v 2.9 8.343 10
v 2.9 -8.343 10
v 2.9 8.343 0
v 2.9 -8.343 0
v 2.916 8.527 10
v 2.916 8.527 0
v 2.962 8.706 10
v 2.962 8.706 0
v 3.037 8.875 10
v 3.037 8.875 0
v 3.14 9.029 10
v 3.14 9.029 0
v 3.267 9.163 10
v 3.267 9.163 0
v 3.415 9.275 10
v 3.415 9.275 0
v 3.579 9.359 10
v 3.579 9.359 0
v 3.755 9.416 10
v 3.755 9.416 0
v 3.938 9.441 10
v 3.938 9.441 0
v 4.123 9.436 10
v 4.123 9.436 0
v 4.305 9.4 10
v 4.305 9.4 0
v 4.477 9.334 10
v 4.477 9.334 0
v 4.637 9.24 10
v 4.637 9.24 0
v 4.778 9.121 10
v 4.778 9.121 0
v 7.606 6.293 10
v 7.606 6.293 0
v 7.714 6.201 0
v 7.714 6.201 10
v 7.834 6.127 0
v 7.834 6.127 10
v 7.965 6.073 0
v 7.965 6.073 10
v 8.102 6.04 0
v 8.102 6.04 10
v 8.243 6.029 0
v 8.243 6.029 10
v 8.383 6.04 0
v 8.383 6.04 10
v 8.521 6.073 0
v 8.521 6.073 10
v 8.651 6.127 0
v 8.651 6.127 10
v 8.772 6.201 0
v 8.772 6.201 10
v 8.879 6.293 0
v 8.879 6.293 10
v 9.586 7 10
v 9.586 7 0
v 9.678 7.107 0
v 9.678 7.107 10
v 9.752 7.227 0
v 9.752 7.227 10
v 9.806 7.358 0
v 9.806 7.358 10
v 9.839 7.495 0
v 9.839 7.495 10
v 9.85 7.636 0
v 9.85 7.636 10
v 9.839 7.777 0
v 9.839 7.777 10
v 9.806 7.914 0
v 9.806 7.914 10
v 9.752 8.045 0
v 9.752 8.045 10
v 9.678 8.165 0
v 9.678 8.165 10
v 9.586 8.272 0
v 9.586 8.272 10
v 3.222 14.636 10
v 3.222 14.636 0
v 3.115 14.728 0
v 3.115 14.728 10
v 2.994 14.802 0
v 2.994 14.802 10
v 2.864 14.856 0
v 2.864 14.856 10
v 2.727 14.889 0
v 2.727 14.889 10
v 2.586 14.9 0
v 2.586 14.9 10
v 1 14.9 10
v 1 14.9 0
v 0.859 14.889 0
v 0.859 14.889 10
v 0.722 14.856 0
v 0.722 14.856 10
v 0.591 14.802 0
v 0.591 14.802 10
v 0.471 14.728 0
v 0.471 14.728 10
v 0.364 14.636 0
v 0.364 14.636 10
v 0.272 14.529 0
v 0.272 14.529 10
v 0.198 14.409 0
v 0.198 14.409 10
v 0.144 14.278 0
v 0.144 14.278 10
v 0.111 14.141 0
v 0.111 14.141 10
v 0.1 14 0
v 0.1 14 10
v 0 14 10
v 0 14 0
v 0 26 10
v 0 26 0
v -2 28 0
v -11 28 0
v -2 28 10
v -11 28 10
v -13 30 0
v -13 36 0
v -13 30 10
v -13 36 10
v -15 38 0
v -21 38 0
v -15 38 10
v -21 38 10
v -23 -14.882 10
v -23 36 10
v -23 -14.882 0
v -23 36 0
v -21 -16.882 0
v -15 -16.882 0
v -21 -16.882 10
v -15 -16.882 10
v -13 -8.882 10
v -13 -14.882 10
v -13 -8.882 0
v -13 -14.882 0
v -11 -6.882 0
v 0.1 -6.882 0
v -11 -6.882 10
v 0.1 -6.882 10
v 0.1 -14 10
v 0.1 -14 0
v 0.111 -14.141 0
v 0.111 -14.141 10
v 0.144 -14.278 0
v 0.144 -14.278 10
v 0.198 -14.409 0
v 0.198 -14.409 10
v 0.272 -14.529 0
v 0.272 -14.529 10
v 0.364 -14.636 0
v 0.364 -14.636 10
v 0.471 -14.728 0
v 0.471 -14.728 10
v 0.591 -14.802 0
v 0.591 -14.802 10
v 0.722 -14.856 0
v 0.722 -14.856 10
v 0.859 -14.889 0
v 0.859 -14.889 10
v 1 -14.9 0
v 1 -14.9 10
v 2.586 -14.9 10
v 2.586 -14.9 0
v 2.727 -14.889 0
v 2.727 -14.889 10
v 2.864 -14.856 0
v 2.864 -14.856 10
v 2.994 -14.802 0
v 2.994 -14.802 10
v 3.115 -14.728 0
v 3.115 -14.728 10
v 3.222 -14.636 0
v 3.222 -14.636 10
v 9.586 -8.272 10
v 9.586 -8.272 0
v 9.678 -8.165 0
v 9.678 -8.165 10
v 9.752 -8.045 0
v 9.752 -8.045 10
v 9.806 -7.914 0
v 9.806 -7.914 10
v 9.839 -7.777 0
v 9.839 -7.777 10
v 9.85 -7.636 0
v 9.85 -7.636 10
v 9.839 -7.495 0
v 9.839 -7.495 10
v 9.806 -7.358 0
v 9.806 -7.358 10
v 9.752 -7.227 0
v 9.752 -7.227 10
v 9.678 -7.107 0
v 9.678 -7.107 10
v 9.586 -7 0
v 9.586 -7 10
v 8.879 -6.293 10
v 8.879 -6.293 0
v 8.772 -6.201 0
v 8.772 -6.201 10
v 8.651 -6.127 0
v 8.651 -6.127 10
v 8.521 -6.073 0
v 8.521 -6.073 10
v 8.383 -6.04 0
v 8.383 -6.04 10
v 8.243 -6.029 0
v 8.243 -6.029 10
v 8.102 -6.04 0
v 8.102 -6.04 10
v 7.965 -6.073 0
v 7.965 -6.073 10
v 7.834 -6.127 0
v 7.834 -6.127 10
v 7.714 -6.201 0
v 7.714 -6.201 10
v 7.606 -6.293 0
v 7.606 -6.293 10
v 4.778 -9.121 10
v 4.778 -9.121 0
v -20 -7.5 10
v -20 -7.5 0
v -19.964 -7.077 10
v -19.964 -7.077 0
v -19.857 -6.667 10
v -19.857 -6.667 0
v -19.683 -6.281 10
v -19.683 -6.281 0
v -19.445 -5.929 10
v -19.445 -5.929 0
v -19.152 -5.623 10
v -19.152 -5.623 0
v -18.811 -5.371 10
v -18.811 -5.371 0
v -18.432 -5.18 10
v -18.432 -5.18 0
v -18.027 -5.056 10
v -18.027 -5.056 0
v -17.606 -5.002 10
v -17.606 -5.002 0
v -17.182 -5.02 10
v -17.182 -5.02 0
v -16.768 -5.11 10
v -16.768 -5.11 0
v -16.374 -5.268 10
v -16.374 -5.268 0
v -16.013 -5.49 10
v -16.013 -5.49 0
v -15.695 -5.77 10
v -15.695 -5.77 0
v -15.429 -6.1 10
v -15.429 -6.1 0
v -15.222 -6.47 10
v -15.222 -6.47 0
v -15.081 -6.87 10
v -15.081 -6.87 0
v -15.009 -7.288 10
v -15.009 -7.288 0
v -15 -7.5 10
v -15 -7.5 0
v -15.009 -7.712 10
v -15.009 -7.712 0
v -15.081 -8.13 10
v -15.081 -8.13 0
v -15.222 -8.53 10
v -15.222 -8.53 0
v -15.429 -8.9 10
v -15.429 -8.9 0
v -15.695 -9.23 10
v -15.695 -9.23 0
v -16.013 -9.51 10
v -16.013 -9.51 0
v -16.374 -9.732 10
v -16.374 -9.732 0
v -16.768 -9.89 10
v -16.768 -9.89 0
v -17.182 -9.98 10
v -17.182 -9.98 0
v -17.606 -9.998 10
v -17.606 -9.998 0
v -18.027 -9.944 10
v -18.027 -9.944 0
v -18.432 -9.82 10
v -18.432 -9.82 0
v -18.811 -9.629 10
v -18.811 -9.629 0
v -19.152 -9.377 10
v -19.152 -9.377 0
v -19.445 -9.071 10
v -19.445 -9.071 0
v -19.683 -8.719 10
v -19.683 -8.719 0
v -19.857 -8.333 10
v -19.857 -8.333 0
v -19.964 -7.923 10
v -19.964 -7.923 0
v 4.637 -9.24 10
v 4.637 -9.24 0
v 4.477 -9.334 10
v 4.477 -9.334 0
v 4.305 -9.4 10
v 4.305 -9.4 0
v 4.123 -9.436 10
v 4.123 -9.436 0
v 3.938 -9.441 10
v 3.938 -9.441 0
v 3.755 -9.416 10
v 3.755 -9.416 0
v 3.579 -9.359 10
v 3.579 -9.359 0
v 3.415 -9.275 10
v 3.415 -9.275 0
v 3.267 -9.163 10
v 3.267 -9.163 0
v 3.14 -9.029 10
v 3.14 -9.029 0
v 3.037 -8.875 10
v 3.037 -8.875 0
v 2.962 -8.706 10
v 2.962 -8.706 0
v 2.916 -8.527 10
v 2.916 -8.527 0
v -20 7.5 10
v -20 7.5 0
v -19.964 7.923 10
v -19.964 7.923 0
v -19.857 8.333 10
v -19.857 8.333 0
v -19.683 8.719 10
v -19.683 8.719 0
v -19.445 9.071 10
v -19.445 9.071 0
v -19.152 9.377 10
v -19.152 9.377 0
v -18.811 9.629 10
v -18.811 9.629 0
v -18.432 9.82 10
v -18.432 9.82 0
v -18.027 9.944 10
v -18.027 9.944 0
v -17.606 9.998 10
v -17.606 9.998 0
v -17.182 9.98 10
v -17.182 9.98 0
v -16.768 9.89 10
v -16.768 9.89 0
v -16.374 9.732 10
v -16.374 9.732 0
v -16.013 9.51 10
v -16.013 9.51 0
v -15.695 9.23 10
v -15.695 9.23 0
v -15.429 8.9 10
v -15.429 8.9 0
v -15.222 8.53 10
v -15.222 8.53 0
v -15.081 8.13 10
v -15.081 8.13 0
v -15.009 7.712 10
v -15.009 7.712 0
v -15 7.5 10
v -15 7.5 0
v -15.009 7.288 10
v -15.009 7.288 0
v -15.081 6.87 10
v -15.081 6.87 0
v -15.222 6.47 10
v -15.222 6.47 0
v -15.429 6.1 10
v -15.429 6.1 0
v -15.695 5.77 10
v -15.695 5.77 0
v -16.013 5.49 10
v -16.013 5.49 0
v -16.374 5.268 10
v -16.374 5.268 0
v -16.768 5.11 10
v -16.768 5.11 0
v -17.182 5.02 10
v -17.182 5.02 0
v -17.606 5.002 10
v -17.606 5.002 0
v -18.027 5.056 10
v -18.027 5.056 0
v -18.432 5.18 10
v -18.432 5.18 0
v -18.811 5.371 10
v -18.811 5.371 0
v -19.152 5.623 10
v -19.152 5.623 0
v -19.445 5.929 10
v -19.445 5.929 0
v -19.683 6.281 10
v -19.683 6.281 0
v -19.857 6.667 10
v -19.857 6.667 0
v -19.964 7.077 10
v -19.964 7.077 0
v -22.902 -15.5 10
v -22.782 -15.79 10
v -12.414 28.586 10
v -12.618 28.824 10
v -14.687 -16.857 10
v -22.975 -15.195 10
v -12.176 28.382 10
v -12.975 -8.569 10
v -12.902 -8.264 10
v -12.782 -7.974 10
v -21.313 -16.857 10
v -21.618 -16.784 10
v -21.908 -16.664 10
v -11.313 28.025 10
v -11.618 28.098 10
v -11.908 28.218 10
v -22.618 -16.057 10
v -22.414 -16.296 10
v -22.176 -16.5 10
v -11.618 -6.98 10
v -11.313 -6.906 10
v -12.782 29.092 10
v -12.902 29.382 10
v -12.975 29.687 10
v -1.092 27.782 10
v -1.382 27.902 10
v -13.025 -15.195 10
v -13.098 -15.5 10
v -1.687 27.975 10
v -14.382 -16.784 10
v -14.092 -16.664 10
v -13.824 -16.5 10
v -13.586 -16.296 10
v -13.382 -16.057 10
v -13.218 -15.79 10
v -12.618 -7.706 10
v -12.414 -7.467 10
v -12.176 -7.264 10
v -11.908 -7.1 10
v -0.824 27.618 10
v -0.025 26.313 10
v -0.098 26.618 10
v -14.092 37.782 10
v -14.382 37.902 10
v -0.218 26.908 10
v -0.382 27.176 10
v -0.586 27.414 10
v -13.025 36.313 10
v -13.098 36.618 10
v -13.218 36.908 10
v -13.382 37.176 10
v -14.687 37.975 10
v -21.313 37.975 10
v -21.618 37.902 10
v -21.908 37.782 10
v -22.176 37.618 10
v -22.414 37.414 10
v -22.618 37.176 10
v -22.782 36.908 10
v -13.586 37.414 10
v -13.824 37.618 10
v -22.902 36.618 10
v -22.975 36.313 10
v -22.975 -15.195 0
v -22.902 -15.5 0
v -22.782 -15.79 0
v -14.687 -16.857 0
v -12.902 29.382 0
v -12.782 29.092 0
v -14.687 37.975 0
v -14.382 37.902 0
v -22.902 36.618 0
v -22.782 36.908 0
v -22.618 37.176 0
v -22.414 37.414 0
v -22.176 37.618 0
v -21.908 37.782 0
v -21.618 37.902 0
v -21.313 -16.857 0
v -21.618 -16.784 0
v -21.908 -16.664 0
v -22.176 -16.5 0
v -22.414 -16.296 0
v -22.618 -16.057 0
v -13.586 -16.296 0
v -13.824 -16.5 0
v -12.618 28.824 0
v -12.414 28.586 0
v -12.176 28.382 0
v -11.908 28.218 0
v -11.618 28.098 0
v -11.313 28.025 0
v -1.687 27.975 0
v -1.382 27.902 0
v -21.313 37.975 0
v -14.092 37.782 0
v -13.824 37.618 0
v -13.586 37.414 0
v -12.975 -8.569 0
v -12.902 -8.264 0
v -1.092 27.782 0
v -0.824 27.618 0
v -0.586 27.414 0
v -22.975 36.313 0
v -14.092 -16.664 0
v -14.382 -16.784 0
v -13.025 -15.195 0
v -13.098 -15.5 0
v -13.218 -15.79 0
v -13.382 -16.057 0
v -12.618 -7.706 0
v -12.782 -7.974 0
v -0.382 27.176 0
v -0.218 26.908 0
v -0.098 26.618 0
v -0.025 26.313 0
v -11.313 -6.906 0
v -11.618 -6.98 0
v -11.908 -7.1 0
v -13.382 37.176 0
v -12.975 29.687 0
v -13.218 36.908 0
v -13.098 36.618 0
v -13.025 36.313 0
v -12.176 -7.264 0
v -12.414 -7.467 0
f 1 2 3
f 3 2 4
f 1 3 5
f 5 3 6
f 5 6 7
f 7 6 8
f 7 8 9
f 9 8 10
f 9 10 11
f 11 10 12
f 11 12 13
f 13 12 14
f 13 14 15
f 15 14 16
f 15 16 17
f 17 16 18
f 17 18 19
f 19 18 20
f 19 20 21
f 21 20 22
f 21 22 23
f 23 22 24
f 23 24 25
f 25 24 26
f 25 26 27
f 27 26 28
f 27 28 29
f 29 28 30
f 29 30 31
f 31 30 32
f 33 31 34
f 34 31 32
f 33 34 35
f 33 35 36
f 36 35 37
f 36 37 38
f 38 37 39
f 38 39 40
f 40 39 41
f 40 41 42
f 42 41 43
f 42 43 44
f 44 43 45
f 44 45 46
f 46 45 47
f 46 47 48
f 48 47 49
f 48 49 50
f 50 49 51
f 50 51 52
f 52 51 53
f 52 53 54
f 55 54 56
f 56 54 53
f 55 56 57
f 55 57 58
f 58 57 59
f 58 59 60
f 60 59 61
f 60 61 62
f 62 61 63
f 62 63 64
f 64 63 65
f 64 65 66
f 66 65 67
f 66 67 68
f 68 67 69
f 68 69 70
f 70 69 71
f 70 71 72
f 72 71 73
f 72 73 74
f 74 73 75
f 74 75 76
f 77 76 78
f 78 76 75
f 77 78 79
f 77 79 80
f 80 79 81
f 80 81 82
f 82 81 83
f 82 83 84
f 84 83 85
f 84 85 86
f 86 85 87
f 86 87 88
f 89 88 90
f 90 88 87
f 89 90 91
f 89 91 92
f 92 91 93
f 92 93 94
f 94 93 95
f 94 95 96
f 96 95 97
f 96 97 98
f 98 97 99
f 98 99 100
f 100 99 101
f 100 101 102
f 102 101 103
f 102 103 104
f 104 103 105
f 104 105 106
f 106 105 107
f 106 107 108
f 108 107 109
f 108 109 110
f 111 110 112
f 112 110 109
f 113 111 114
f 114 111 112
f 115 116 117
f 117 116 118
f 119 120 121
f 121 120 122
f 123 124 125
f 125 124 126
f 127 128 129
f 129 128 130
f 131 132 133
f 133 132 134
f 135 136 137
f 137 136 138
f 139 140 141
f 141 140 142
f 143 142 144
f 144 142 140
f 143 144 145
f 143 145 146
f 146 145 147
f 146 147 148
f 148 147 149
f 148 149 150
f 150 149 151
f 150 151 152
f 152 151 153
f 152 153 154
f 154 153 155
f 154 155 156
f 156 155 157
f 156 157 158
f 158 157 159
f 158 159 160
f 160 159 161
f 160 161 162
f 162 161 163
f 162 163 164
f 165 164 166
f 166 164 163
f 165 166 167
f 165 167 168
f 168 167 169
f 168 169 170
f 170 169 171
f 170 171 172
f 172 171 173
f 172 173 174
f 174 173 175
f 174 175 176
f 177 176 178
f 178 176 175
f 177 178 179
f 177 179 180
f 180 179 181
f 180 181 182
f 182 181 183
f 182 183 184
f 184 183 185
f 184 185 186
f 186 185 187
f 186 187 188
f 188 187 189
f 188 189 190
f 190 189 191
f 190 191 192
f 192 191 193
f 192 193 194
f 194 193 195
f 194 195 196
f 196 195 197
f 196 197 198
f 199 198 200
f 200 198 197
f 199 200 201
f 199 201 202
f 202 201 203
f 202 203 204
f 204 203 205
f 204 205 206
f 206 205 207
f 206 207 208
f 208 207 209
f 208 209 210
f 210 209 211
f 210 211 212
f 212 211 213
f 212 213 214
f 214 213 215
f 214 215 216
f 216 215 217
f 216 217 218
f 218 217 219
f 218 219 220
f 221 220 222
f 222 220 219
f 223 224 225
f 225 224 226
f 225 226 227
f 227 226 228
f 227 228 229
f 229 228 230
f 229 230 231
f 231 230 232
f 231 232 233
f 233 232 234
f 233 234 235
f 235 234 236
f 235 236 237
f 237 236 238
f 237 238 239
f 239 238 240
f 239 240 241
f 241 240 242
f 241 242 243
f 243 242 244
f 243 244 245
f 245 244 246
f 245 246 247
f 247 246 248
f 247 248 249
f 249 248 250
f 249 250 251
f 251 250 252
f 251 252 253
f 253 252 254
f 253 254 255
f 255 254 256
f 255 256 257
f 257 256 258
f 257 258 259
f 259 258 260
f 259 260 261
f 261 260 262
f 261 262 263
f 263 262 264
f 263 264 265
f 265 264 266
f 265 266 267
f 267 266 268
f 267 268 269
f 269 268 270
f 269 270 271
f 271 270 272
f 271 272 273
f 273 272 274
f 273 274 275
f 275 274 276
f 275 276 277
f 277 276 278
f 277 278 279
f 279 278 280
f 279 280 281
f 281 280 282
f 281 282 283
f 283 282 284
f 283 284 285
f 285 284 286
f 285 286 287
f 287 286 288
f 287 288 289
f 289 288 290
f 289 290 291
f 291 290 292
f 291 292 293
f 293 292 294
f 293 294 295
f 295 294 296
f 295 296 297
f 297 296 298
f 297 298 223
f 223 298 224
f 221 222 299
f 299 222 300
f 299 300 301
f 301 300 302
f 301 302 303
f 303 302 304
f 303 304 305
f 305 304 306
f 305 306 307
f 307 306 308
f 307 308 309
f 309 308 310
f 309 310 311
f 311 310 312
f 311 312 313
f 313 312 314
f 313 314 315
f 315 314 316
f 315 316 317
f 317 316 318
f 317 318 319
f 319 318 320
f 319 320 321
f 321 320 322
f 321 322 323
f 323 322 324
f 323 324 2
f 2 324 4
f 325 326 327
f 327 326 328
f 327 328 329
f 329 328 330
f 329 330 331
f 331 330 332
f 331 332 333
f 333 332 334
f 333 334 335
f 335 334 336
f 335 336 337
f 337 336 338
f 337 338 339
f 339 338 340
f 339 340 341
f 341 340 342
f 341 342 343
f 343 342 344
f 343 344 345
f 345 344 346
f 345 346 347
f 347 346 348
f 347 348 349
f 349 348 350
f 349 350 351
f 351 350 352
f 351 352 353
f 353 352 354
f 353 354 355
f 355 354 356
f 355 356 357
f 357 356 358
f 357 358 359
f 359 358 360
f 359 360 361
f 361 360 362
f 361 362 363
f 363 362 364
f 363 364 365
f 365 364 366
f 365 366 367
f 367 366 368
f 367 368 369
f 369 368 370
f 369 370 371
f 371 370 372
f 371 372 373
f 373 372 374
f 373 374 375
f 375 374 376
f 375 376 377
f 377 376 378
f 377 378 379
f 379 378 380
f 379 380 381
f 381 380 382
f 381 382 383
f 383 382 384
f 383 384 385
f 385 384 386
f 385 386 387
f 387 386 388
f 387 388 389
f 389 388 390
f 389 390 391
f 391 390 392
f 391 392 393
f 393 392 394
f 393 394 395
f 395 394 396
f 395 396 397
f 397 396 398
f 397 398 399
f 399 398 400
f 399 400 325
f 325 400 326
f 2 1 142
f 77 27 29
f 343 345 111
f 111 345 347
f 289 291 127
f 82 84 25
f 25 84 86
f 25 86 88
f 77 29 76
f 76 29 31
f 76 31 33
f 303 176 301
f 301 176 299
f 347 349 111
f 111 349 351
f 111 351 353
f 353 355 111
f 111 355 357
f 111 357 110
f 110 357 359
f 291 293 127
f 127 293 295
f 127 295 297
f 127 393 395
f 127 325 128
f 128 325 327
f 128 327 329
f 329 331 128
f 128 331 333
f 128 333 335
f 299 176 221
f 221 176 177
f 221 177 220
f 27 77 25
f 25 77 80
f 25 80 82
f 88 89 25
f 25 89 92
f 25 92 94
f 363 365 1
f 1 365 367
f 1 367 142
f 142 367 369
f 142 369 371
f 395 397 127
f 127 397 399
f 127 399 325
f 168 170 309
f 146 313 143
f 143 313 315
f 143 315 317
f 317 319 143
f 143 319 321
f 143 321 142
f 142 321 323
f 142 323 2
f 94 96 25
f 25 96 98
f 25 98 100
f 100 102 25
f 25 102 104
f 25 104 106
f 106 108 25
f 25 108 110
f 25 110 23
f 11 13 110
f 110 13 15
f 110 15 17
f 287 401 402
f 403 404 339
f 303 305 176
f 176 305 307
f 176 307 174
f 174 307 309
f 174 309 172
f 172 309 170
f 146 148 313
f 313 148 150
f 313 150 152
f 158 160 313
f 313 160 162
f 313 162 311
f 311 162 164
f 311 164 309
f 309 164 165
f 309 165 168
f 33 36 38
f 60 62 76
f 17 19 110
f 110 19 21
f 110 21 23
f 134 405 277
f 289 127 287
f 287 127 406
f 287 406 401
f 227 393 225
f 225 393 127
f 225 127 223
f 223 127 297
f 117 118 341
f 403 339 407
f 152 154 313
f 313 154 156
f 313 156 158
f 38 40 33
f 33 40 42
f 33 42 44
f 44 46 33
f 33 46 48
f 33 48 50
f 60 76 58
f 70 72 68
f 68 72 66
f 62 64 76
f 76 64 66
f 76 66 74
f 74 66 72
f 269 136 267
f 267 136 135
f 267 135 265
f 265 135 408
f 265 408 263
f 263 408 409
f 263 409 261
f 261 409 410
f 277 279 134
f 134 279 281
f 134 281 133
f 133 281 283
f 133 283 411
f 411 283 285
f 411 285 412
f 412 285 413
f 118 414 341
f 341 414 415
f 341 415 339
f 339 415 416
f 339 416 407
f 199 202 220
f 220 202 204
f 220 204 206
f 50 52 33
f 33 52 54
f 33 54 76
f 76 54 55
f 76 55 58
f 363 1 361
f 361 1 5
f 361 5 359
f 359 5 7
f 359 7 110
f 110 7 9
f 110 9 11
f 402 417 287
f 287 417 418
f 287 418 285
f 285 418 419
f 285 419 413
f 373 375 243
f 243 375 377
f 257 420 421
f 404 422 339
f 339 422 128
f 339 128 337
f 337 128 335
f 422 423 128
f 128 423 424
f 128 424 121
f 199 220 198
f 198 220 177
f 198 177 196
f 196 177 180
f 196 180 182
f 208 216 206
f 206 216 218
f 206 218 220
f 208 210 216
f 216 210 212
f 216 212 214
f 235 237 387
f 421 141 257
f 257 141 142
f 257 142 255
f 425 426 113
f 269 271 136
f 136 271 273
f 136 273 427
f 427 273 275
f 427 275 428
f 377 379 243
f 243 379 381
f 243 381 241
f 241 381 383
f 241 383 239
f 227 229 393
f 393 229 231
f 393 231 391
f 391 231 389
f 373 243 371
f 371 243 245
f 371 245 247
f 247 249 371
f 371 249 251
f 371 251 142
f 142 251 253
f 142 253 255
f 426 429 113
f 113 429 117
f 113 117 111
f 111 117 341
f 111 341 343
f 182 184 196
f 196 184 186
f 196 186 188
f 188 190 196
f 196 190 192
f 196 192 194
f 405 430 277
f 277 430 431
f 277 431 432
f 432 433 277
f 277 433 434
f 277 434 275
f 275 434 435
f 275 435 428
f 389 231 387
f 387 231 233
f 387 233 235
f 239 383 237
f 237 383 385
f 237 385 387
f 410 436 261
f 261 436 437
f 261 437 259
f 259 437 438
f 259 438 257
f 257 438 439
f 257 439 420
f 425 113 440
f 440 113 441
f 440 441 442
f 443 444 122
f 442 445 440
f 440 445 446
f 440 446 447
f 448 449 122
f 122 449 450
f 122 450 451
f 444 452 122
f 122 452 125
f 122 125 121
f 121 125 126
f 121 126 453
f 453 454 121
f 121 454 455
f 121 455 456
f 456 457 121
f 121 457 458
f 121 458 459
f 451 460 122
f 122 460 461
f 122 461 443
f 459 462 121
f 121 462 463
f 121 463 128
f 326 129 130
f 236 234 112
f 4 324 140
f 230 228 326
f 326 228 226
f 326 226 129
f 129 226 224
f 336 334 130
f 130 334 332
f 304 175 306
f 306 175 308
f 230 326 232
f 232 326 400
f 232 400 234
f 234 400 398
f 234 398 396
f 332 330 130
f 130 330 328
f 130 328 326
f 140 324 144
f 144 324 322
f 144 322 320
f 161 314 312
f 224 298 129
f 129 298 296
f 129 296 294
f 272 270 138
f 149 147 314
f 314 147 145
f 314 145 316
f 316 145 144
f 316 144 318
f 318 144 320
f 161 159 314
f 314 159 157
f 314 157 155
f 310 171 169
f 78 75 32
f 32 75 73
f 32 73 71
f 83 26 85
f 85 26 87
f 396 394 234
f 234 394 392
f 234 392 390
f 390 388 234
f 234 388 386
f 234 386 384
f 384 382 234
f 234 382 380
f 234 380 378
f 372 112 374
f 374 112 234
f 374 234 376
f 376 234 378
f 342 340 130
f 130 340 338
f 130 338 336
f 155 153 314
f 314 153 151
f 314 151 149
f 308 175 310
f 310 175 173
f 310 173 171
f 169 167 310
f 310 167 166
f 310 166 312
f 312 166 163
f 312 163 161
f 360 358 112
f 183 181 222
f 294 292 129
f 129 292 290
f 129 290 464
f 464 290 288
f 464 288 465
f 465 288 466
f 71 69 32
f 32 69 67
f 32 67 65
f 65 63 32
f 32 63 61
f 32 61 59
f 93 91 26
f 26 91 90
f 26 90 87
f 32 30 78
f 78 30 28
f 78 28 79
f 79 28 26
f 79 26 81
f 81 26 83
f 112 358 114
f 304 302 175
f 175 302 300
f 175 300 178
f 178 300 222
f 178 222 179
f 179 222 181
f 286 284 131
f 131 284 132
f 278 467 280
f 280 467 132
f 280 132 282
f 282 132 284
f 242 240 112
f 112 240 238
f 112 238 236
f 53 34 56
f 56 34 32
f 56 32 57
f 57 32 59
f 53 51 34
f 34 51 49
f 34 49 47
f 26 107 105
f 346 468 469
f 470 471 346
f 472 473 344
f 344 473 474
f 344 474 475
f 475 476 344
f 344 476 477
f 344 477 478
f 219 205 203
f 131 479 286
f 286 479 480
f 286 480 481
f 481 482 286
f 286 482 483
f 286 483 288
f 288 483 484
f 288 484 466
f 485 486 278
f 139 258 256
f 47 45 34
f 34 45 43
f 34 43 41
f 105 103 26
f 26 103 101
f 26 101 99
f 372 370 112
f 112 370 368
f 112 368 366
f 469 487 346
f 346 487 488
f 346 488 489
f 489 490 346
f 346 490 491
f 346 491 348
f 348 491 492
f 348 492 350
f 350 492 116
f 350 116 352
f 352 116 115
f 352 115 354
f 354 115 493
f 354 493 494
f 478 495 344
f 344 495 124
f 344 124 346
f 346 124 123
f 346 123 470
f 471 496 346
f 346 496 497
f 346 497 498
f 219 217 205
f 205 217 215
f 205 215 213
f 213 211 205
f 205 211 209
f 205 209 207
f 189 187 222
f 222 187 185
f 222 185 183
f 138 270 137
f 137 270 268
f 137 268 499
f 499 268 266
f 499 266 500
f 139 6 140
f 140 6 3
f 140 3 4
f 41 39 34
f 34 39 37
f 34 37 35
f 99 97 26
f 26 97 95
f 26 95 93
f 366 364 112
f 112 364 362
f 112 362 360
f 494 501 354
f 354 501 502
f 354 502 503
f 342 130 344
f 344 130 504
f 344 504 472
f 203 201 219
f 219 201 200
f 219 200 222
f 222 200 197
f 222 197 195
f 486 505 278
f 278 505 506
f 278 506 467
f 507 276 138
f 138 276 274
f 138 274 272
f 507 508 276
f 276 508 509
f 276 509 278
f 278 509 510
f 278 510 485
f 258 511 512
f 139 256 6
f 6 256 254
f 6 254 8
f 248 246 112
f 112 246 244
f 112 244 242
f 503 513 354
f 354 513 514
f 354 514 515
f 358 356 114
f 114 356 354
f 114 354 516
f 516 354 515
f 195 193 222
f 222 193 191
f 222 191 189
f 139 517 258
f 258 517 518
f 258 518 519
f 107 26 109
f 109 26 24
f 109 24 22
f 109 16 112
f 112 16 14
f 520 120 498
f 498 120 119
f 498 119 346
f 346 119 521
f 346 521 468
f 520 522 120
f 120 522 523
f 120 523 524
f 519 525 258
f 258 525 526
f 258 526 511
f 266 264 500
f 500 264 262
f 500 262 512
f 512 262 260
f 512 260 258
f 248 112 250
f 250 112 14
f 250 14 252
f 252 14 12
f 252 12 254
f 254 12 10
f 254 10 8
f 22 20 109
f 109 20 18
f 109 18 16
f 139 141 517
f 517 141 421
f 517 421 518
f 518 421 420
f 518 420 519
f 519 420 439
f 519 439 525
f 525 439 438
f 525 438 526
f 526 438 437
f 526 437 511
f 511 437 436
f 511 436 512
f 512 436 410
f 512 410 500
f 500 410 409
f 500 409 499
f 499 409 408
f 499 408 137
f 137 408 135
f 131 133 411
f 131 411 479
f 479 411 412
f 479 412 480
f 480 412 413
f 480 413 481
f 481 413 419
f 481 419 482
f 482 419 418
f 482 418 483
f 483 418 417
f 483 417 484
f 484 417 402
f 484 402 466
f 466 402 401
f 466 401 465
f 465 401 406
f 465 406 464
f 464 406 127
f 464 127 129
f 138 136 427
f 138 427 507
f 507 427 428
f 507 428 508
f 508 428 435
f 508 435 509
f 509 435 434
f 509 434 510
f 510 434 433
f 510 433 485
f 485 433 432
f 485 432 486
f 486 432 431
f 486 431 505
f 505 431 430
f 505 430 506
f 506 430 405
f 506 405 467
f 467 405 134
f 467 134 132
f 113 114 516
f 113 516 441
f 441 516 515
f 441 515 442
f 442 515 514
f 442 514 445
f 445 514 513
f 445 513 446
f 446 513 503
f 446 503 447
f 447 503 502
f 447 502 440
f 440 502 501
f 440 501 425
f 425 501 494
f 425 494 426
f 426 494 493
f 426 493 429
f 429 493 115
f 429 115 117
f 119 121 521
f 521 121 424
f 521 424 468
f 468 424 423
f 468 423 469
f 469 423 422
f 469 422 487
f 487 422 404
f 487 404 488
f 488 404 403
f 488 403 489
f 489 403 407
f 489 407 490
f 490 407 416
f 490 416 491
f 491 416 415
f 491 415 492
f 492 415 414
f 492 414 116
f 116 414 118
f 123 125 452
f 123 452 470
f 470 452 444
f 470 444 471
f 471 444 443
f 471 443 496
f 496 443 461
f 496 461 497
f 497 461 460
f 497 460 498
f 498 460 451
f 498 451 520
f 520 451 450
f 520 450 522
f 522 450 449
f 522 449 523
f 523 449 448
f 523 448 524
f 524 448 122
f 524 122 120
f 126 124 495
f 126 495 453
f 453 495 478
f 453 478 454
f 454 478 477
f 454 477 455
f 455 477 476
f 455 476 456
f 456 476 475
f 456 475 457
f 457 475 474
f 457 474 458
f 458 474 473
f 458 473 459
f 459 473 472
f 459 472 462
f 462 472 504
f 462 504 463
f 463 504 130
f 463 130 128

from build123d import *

# Parameters (mm, degrees)
ESQUISSE1_R        = 2.5
BOSS_EXTRU_1_DEPTH = 10
CONG_1_R           = 2


with BuildPart() as part:
    # Esquisse1 → Boss.-Extru.1 (new body)
    with BuildSketch(Plane.XY):
        with BuildLine():
            Line((0.1, 14), (0, 14))
            Line((0, 14), (0, 28))
            Line((0, 28), (-13, 28))
            Line((-13, 28), (-13, 38))
            Line((-13, 38), (-23, 38))
            Line((-23, 38), (-23, -16.88168582))
            Line((-23, -16.88168582), (-13, -16.88168582))
            Line((-13, -16.88168582), (-13, -6.88168582))
            Line((-13, -6.88168582), (0.1, -6.88168582))
            Line((0.1, -6.88168582), (0.1, -14))
            ThreePointArc((0.1, -14), (0.363603897, -14.636396103), (1, -14.9))
            Line((1, -14.9), (2.585786438, -14.9))
            ThreePointArc((2.585786438, -14.9), (2.930201527, -14.831491579), (3.222182541, -14.636396103))
            Line((3.222182541, -14.636396103), (9.586143571, -8.272435072))
            ThreePointArc((9.586143571, -8.272435072), (9.849747468, -7.636038969), (9.586143571, -6.999642866))
            Line((9.586143571, -6.999642866), (8.87903679, -6.292536085))
            ThreePointArc((8.87903679, -6.292536085), (8.242640687, -6.028932188), (7.606244584, -6.292536085))
            Line((7.606244584, -6.292536085), (4.777817459, -9.12096321))
            ThreePointArc((4.777817459, -9.12096321), (3.579048224, -9.359413236), (2.9, -8.343145751))
            Line((2.9, -8.343145751), (2.9, 8.343145751))
            ThreePointArc((2.9, 8.343145751), (3.579048224, 9.359413236), (4.777817459, 9.12096321))
            Line((4.777817459, 9.12096321), (7.606244584, 6.292536085))
            ThreePointArc((7.606244584, 6.292536085), (8.242640687, 6.028932188), (8.87903679, 6.292536085))
            Line((8.87903679, 6.292536085), (9.586143571, 6.999642866))
            ThreePointArc((9.586143571, 6.999642866), (9.849747468, 7.636038969), (9.586143571, 8.272435072))
            Line((9.586143571, 8.272435072), (3.222182541, 14.636396103))
            ThreePointArc((3.222182541, 14.636396103), (2.930201527, 14.831491579), (2.585786438, 14.9))
            Line((2.585786438, 14.9), (1, 14.9))
            ThreePointArc((1, 14.9), (0.363603897, 14.636396103), (0.1, 14))
        make_face()
        with Locations((-17.5, 7.5)):
            Circle(ESQUISSE1_R, mode=Mode.SUBTRACT)
        with Locations((-17.5, -7.5)):
            Circle(ESQUISSE1_R, mode=Mode.SUBTRACT)
    extrude(amount=BOSS_EXTRU_1_DEPTH)

    # Congé1
    cong_1_edges = [part.edges().sort_by_distance(p)[0] for p in [
        (-13, -6.88168582, 5),
        (-13, -16.88168582, 5),
        (-23, -16.88168582, 5),
        (-23, 38, 5),
        (-13, 38, 5),
        (-13, 28, 5),
        (0, 28, 5),
    ]]
    fillet(cong_1_edges, radius=CONG_1_R)


solid = part.part
